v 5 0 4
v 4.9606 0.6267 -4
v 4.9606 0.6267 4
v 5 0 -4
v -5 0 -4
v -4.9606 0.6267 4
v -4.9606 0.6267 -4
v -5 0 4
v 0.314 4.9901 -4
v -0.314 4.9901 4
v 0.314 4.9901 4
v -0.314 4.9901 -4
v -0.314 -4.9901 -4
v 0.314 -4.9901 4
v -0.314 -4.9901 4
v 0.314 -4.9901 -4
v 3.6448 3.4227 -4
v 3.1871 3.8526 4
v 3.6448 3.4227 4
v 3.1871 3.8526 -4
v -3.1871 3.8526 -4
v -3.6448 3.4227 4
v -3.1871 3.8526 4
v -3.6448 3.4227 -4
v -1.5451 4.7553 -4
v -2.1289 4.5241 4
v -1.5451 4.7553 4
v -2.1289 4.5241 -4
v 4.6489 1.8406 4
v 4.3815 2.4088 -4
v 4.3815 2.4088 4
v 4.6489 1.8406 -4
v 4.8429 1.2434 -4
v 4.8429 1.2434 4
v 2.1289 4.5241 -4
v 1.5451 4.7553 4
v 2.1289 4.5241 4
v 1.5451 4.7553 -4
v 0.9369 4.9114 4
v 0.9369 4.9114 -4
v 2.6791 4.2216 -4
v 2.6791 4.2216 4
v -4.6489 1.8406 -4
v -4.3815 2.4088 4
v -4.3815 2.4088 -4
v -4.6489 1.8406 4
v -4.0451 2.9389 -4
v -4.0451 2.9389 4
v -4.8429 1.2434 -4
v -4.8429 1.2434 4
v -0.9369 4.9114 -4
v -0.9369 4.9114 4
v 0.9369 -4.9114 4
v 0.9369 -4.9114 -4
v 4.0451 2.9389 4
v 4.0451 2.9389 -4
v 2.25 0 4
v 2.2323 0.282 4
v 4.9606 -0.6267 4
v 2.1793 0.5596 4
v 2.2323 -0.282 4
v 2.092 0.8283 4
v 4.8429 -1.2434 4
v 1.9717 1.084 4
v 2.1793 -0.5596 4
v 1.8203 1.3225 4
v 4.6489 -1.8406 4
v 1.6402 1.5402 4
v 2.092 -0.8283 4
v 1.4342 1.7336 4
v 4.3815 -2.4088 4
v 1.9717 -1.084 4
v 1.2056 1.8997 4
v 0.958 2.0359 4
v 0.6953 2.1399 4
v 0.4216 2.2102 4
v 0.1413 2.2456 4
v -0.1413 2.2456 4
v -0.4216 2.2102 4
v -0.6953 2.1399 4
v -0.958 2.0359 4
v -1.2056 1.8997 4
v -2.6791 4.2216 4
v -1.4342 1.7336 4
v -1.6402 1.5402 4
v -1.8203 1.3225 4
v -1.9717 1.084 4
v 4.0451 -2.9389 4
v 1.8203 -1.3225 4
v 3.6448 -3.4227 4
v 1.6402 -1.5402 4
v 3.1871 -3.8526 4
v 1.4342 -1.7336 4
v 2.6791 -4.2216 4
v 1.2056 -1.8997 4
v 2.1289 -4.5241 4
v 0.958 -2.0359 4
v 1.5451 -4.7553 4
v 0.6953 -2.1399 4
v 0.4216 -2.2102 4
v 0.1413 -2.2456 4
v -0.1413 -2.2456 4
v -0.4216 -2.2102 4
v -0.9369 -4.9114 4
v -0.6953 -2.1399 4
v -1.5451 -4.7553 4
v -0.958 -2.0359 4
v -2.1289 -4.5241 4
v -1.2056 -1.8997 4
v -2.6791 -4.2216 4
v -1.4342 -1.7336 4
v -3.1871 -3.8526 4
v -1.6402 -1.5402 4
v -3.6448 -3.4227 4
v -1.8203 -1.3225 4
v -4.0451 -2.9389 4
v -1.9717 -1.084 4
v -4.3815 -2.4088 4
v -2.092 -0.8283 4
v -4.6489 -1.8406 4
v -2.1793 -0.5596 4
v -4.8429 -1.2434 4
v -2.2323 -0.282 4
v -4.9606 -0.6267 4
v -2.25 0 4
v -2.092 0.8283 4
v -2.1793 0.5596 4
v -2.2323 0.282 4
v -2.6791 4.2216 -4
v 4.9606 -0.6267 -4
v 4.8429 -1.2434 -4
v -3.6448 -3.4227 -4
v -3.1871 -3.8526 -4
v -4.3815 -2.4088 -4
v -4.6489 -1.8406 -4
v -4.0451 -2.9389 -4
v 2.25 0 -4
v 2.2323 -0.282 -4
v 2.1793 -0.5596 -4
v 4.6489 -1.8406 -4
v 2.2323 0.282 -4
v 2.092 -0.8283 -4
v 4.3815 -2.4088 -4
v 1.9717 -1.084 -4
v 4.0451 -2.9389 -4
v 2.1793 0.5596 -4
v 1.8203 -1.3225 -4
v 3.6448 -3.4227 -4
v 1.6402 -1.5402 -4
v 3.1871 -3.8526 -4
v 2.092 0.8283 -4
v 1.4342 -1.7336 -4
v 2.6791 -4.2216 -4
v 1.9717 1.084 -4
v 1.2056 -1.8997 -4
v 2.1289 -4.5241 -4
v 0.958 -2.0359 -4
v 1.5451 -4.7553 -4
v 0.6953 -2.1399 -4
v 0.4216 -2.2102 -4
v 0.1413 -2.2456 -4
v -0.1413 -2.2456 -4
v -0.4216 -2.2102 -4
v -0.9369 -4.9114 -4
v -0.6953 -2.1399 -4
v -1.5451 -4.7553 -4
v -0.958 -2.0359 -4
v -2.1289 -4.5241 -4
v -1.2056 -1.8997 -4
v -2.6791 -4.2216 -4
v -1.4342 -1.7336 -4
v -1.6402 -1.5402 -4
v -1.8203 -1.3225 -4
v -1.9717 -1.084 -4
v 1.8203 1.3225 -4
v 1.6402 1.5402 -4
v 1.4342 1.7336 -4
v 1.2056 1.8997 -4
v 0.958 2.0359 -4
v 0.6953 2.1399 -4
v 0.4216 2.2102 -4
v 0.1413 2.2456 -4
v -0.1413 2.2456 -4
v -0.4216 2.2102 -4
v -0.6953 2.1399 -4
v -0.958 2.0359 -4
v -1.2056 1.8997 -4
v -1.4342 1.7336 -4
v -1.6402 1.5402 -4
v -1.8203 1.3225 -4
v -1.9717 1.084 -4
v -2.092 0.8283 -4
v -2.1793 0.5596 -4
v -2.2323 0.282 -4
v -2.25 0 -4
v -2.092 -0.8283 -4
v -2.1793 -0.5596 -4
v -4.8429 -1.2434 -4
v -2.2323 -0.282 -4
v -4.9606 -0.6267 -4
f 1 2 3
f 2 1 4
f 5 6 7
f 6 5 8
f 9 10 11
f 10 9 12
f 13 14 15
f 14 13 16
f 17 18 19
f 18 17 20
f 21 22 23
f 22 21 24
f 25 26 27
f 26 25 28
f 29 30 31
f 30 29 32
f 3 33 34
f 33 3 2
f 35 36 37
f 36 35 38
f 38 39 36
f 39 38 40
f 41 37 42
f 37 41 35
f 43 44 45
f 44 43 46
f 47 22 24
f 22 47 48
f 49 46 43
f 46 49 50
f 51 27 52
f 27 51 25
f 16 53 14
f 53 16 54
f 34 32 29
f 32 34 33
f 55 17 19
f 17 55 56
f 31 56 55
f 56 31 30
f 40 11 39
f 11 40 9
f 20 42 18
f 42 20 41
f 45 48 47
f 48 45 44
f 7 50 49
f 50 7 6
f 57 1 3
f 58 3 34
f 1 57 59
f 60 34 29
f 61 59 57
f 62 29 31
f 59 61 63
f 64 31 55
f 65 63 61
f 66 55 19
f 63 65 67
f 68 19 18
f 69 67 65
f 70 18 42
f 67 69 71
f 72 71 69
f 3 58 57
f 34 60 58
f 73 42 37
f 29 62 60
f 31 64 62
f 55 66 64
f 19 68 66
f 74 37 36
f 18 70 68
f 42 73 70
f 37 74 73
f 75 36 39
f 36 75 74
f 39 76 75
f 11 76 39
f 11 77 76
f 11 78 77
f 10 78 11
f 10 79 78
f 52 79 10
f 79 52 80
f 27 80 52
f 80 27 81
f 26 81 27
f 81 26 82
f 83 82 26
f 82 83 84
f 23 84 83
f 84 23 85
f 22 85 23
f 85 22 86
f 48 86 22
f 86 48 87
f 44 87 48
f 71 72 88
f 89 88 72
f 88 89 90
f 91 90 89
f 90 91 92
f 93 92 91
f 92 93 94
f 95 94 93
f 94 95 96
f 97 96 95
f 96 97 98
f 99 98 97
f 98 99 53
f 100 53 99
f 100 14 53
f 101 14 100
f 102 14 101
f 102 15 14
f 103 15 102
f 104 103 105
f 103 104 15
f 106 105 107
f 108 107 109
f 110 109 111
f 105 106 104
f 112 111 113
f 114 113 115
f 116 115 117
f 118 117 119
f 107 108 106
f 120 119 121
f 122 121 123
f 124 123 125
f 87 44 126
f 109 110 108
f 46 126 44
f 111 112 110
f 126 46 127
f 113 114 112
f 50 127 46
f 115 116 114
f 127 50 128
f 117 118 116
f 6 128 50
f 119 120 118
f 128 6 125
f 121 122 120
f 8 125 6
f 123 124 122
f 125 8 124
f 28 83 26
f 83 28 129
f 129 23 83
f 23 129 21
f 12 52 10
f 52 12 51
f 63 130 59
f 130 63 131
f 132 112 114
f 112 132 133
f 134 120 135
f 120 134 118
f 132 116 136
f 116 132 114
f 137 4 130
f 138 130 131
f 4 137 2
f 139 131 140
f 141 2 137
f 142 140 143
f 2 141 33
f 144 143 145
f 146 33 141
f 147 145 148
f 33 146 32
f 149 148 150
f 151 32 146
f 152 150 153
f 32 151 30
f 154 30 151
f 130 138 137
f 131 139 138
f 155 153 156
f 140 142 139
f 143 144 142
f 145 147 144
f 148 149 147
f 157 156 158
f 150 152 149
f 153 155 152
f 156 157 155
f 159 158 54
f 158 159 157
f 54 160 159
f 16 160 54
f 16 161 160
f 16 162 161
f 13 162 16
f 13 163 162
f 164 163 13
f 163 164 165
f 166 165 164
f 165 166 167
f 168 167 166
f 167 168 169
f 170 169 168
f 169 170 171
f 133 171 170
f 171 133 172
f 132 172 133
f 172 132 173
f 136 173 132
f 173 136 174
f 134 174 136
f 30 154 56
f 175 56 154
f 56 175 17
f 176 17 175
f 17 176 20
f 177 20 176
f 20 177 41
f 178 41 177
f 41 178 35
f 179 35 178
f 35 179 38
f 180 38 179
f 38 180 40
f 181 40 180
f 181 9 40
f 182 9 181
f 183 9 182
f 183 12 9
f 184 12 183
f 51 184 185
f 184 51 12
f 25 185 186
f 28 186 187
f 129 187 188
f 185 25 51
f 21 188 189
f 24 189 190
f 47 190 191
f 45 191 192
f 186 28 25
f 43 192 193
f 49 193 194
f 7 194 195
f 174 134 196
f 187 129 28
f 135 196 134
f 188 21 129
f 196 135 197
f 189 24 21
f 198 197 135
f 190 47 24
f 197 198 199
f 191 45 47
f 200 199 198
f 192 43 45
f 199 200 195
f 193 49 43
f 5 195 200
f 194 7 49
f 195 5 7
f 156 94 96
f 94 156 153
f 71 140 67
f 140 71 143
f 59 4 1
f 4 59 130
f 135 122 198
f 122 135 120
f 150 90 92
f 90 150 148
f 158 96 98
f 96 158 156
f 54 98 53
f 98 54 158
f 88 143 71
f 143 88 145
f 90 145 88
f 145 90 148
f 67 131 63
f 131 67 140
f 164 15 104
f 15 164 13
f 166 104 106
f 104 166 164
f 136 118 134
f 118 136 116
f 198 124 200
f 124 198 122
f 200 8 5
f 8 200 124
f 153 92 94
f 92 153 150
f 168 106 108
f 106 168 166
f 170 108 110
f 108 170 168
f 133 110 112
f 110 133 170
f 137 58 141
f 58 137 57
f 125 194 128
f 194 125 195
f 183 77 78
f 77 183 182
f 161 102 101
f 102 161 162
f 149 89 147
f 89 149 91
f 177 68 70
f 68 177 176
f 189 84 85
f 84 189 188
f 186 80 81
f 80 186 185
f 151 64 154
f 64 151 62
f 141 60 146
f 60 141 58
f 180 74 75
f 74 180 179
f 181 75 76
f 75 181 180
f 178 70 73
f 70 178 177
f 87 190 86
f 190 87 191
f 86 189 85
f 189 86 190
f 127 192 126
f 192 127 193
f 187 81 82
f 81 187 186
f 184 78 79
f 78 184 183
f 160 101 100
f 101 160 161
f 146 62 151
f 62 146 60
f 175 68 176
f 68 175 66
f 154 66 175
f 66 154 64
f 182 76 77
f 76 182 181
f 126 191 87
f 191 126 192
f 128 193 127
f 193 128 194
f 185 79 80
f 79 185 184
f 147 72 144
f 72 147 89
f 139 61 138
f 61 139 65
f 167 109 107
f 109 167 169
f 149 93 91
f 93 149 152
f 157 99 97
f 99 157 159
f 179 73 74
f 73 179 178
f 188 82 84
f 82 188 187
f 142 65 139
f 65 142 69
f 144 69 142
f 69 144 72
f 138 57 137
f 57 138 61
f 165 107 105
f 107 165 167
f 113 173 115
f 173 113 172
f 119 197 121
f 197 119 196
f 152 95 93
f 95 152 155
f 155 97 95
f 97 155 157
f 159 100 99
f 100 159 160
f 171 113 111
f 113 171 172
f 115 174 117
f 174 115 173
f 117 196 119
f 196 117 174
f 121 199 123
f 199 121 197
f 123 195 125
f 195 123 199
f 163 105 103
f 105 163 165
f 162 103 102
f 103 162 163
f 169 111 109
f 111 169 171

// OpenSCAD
$fn = 50;


difference() {
	union() {
		translate(v = [0, 0, -4.0000000000]) {
			cylinder(h = 8, r = 5.0000000000);
		}
	}
	union() {
		translate(v = [0, 0, -100.0000000000]) {
			cylinder(h = 200, r = 2.2500000000);
		}
	}
}
